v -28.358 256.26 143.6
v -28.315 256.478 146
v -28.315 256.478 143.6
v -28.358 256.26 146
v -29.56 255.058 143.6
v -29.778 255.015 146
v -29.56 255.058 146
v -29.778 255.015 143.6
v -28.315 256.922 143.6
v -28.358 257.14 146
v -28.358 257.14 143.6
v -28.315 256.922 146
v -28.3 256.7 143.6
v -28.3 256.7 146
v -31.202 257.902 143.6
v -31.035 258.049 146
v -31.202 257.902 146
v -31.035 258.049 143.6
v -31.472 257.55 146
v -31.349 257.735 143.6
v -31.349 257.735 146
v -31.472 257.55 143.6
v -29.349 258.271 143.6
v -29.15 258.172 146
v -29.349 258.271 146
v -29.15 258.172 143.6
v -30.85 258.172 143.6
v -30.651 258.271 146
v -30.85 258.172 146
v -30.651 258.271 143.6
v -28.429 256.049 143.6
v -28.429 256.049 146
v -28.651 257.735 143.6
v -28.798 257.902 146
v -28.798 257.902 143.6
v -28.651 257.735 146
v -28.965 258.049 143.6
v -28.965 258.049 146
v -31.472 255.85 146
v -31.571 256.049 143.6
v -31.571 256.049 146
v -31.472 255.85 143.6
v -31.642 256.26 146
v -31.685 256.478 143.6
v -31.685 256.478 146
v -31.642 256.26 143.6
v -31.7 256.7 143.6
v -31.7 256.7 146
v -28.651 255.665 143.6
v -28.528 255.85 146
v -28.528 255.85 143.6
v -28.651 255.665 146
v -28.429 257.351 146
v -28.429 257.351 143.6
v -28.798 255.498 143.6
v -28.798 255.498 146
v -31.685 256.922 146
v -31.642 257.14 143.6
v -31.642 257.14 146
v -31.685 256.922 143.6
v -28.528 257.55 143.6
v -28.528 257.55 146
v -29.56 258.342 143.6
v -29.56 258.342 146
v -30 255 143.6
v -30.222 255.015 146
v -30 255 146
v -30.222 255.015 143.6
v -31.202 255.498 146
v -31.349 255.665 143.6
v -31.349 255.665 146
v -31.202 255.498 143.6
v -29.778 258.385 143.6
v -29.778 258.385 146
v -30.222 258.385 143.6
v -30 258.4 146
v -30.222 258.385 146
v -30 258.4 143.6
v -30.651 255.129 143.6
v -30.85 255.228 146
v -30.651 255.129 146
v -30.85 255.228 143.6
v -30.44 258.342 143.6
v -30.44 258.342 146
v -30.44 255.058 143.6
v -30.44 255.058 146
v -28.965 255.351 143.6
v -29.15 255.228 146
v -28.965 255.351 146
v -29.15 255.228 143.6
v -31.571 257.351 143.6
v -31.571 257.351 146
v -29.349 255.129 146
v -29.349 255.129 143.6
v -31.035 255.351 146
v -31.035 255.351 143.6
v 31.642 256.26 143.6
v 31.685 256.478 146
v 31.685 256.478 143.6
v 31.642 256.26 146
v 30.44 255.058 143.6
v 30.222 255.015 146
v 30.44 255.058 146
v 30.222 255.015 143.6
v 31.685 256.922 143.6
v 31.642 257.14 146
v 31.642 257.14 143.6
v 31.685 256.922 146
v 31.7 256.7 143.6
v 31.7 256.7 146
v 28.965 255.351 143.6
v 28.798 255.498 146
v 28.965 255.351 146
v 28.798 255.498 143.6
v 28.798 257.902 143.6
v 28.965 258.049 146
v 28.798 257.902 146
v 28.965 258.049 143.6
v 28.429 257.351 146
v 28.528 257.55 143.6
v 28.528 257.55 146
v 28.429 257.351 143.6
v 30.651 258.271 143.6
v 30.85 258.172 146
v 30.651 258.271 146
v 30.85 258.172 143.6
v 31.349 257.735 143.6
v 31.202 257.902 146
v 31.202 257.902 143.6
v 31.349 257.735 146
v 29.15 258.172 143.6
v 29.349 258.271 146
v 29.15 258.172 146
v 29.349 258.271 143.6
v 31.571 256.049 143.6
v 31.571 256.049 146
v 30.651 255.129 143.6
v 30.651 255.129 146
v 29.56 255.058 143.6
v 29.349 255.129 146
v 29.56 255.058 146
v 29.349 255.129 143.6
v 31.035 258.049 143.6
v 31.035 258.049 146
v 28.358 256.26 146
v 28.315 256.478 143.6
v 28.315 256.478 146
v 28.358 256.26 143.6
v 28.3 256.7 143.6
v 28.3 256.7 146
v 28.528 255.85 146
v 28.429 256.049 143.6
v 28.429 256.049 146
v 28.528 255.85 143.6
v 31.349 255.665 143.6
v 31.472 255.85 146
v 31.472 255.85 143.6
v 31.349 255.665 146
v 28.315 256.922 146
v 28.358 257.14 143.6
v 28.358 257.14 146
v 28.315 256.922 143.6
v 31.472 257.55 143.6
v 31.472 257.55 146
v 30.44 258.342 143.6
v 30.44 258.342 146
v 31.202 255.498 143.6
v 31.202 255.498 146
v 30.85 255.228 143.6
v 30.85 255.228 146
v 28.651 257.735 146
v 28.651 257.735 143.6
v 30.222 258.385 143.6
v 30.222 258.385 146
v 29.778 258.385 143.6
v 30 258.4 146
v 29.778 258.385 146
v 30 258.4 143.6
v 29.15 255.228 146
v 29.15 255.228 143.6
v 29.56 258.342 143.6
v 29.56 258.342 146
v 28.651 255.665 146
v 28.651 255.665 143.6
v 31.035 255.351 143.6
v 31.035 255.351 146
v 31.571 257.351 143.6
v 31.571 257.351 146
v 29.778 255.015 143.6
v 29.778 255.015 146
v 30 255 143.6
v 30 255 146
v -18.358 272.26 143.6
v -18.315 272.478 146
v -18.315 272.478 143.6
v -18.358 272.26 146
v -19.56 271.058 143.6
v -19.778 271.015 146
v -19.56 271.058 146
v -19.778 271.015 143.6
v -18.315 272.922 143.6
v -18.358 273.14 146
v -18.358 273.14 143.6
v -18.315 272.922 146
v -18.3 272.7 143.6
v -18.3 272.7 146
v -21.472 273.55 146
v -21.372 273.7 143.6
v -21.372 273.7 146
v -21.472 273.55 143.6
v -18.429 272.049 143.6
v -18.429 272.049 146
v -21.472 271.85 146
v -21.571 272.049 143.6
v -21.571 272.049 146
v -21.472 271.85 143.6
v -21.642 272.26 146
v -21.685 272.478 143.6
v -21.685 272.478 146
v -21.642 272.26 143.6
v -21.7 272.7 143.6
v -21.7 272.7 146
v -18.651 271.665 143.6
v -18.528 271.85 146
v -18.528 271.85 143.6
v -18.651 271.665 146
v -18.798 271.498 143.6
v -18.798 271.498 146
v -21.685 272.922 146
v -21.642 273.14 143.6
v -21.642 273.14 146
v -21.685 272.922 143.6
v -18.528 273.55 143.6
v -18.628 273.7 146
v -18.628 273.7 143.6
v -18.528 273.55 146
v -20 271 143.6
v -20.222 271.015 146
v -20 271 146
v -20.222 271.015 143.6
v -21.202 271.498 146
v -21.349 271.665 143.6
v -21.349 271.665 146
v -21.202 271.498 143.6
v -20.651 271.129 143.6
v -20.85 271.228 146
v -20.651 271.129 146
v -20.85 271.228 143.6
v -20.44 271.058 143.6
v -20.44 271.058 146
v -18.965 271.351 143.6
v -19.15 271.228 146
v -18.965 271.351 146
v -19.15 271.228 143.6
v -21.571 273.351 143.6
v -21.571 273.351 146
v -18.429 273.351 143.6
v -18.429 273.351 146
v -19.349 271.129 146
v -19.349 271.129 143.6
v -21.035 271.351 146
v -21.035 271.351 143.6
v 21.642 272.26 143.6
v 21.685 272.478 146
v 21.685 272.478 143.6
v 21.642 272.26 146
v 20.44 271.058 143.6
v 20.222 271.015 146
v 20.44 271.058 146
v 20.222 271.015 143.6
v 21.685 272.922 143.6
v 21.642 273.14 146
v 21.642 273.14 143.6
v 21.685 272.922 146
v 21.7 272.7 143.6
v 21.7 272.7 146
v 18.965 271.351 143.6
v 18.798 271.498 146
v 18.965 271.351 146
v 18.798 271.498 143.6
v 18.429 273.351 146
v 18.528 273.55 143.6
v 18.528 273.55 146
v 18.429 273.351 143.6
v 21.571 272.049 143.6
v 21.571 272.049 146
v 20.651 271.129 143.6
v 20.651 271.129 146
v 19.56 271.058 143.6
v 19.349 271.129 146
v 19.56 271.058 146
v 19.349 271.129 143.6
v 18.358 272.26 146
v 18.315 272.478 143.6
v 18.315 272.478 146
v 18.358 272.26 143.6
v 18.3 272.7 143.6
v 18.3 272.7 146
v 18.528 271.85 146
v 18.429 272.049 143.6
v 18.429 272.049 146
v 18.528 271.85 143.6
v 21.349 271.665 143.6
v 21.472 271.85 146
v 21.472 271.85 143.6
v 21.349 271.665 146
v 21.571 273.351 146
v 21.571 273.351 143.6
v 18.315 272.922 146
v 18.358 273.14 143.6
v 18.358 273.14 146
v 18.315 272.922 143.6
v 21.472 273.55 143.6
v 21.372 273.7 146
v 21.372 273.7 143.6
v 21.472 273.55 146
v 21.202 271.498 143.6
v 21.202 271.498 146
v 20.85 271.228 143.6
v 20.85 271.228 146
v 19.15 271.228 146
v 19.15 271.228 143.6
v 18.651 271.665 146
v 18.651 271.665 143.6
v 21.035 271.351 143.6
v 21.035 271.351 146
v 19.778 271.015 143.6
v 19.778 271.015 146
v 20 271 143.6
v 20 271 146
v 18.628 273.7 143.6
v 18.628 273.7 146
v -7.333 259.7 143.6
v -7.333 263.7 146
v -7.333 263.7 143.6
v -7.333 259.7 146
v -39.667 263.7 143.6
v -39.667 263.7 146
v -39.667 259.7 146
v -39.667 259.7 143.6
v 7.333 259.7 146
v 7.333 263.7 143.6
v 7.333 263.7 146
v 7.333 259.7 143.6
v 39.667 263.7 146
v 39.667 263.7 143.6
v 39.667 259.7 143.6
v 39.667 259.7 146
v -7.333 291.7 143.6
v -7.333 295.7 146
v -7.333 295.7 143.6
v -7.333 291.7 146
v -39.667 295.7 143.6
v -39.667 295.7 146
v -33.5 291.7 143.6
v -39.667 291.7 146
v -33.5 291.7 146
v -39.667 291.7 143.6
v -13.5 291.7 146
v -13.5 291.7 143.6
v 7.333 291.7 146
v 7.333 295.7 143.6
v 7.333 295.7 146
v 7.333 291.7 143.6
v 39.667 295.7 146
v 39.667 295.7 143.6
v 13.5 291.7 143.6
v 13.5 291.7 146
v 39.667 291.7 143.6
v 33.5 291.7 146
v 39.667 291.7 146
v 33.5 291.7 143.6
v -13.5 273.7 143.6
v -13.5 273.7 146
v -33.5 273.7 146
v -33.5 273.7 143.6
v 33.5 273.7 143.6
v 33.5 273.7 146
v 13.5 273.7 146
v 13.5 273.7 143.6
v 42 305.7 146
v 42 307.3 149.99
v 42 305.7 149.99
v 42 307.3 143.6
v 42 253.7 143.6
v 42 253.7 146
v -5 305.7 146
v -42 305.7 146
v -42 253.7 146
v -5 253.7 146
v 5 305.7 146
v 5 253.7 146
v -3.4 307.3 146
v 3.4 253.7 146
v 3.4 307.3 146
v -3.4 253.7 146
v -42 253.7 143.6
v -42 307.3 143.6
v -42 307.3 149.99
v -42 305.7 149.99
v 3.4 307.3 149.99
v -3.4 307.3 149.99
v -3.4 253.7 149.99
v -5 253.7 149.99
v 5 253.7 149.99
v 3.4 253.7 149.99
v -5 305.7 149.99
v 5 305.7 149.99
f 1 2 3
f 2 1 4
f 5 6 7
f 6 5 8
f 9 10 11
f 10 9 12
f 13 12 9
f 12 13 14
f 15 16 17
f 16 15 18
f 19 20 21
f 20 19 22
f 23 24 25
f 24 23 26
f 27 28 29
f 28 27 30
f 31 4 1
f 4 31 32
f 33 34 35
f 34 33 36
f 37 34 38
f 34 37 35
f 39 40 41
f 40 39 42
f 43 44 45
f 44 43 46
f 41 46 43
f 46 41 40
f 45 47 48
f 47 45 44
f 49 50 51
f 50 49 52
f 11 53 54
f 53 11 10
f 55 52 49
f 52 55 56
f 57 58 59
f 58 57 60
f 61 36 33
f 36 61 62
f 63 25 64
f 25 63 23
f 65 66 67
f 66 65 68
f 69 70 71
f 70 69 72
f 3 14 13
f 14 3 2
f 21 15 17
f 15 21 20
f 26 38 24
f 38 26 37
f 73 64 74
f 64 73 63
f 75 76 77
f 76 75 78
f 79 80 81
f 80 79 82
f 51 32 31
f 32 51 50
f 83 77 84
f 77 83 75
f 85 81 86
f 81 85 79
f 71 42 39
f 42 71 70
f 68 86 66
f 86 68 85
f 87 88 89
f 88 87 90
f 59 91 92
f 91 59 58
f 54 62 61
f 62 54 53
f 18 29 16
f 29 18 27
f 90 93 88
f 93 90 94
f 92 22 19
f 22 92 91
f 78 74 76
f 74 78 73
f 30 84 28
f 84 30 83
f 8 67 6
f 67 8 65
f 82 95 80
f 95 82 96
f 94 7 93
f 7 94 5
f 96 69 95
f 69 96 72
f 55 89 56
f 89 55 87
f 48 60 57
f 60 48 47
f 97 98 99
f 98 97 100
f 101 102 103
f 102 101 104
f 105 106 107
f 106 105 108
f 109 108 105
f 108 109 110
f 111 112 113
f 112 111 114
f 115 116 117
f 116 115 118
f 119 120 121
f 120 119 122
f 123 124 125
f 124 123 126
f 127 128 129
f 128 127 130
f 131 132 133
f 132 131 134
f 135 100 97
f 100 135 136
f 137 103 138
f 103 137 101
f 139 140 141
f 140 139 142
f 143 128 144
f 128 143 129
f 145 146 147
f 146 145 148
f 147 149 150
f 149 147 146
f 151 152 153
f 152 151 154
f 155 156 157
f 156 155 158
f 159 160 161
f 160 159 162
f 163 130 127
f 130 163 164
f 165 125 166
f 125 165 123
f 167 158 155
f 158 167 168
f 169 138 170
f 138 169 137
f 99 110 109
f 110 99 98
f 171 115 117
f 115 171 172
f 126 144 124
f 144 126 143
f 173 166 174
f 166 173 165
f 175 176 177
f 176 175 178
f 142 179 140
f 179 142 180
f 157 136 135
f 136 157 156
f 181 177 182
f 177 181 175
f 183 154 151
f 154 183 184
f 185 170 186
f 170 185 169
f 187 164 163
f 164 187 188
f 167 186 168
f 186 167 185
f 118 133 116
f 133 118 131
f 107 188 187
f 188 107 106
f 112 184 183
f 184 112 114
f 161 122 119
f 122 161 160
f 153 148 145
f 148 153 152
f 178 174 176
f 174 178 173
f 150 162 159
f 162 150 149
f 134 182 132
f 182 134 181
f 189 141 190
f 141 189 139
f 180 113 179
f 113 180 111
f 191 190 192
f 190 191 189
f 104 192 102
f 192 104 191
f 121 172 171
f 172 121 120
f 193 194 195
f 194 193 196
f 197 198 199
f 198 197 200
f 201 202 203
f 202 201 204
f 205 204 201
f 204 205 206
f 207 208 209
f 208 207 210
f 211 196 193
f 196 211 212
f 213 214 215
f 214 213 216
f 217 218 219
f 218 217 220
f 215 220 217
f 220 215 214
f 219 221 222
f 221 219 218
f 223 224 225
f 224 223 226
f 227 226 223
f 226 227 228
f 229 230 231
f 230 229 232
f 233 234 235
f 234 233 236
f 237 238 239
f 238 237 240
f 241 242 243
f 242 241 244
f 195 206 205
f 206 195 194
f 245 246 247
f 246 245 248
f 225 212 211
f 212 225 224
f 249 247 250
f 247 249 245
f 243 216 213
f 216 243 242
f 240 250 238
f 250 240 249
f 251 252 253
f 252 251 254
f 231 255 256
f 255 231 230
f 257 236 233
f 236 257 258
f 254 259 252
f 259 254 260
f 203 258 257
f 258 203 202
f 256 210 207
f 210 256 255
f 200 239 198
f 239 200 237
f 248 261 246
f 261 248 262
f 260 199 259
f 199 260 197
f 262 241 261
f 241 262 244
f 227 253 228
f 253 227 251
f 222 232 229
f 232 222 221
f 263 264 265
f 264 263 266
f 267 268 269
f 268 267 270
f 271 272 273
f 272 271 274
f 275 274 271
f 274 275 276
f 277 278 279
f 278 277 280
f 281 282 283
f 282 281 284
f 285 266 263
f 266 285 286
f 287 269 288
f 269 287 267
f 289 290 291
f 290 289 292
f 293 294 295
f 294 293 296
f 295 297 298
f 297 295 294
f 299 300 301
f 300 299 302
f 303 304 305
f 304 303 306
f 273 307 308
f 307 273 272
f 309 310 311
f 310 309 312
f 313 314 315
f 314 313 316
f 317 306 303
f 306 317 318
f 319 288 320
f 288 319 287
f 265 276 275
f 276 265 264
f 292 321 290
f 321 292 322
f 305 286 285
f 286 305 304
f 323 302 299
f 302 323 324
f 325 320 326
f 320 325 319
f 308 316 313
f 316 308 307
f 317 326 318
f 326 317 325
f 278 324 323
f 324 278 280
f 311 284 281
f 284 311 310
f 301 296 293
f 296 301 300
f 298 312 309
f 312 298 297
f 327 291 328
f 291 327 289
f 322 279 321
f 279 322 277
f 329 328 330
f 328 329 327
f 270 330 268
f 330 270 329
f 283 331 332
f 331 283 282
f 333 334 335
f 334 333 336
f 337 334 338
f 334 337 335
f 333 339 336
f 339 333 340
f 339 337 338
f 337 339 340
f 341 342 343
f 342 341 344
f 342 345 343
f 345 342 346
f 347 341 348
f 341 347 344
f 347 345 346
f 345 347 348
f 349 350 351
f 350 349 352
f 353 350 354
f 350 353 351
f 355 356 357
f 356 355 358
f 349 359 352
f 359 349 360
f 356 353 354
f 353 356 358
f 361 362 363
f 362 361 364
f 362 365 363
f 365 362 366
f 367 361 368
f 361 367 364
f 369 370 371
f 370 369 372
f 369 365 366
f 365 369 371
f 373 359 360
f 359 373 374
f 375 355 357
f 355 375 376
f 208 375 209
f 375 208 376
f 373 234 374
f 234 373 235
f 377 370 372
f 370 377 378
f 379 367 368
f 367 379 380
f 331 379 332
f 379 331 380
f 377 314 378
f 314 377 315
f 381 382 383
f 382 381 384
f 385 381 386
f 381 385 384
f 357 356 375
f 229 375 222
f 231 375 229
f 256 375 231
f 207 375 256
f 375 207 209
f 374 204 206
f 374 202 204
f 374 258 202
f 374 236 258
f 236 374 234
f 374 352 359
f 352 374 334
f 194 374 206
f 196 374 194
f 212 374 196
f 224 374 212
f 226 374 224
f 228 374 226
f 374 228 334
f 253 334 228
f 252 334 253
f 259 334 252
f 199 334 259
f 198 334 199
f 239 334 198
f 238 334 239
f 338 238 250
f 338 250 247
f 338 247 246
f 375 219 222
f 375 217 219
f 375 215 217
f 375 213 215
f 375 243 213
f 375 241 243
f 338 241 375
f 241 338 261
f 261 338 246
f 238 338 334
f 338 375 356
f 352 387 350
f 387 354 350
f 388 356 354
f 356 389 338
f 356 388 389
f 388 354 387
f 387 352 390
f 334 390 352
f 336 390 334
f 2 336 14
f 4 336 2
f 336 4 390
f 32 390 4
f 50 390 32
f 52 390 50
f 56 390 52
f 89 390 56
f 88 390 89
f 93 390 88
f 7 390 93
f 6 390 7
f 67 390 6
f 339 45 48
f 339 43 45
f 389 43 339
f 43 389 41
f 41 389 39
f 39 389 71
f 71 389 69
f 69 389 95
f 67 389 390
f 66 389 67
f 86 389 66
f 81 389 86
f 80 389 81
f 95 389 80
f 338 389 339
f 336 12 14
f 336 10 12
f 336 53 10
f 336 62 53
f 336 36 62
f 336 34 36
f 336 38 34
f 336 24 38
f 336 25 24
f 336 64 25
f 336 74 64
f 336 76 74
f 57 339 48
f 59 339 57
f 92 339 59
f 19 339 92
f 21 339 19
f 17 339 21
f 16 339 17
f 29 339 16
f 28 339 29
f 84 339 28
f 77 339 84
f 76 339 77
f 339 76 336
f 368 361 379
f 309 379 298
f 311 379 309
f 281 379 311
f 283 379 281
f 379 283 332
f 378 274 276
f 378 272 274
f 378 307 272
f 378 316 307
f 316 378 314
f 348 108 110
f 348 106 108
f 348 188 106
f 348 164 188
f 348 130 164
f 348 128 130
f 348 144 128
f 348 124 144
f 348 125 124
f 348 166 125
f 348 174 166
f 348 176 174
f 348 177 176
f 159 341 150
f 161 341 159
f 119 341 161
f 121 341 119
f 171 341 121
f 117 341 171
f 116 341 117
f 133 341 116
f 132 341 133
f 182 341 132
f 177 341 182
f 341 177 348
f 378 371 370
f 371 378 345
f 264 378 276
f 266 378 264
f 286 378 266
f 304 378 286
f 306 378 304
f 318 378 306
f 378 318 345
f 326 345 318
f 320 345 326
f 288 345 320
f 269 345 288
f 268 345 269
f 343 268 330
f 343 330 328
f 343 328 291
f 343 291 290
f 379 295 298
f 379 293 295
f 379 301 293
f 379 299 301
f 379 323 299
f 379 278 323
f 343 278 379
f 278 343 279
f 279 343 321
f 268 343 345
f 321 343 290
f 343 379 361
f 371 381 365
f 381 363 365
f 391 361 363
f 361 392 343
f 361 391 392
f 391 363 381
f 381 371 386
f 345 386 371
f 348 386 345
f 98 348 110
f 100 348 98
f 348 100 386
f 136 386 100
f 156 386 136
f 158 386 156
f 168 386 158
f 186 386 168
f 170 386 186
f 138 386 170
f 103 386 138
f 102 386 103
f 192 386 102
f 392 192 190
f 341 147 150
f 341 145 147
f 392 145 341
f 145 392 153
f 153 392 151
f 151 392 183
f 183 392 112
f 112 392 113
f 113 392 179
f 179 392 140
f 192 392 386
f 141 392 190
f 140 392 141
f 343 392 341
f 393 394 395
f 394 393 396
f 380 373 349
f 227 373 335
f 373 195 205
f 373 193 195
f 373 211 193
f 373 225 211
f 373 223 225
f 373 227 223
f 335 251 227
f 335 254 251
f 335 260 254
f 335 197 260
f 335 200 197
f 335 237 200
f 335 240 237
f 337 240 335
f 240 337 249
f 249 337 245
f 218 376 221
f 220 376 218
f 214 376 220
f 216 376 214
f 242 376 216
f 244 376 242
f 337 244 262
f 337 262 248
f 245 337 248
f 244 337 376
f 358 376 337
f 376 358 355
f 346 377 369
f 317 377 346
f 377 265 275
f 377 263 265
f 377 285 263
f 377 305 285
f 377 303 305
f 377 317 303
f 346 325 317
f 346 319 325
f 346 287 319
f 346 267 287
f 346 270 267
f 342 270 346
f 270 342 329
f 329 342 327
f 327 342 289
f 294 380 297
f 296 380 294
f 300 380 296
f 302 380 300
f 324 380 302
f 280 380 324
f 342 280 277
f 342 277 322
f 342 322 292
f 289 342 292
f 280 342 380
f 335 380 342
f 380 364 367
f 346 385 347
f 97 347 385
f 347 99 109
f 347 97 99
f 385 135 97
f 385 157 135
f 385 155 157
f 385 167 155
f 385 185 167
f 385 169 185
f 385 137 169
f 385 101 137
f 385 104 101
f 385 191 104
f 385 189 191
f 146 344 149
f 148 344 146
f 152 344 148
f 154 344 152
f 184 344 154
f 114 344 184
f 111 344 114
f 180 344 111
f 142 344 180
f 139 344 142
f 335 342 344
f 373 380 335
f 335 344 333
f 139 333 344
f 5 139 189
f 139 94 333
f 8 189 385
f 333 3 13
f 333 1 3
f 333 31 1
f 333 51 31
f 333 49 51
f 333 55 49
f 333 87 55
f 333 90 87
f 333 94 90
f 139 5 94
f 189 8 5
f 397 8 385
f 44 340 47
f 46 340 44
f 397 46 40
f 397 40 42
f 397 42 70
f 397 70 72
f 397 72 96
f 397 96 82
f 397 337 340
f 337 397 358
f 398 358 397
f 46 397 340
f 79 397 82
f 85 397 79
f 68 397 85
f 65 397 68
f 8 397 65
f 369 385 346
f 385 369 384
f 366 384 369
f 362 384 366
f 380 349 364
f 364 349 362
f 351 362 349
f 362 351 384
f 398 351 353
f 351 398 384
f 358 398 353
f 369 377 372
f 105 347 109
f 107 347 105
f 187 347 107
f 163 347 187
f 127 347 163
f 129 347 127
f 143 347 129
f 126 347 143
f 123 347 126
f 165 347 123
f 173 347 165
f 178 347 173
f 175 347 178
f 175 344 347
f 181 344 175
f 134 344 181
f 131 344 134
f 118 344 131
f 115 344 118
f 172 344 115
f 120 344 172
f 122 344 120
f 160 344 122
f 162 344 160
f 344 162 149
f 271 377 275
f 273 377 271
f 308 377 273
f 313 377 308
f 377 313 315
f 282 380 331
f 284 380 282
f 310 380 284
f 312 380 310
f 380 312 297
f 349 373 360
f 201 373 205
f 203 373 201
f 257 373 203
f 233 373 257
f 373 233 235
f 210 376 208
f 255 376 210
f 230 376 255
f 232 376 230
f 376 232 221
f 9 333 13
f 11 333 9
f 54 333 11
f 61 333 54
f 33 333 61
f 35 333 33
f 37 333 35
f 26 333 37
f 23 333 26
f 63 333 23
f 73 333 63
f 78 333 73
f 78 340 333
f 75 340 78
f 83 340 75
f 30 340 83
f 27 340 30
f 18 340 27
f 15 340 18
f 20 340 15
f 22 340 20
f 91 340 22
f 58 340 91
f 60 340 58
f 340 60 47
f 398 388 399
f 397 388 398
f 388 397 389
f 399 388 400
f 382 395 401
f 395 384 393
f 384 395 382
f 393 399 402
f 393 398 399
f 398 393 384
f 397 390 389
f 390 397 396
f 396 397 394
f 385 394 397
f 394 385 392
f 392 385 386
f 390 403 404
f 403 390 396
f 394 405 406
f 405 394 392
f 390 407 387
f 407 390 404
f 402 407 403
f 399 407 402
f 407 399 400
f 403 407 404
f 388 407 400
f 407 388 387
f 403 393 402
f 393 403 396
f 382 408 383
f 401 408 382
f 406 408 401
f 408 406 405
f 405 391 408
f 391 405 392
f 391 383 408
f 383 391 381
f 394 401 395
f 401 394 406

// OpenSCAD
// file: cargo_layout_t5_params.scad
// cargo_layout_t5_params.scad -- GENERATED by tools/cargo_layout_fit.py
// --write-scad.  Do not edit: change the Python constants and regenerate.
// AIRCRAFT DATUM R2, mm (origin centreline / nose tip / ground plane;
// X=+port, Y=+aft, Z=+up).  2026-10-19.
// License: CERN-OHL-W-2.0 —
// see LICENSES/CERN-OHL-W 2.0 (SPDX-License-Identifier: CERN-OHL-W-2.0)
SHAFT_Y = 352.3000;
SHAFT_Z = 149.0900;
GEAR_MODULE = 1.0000;
WHEEL_N = 40.0000;
WORM_STARTS = 6.0000;
WHEEL_PD = 40.0000;
WORM_PD = 26.0000;
STAGE_C = 33.0000;
WORM_Z = 182.0900;
GEAR_X_OUT = 47.1000;
WHEEL_FACE = 5.0000;
WORM_X = 44.6000;
WORM_LEN = 10.0000;
MOTOR_D = 20.0000;
MOTOR_BODY_L = 41.0000;
MOTOR_ENC_L = 6.0000;
MOTOR_SHAFT_L = 18.0000;
MOTOR_FACE_Y = 344.8000;
MOTOR_HOLE_S = 15.0000;
BATT_L = 142.0000;
BATT_W = 50.0000;
BATT_H = 38.0000;
BATT_X0 = -25.0000;
BATT_X1 = 25.0000;
BATT_Y0 = 247.7000;
BATT_Y1 = 389.7000;
BATT_Z0 = 170.0000;
BATT_Z1 = 208.0000;
CRADLE_T = 2.4000;
CRADLE_FWD_BOSS_Y = 255.7000;
CRADLE_AFT_BOSS_Y = 385.7000;
CRADLE_BOSS_DX = 18.0000;
CRADLE_XC = 0.0000;
CRADLE_TOP_Z = 210.4000;
CRADLE_RELIEF_Z = 207.0000;
TRAY_X = 40.0000;
TRAY_Y = 60.0000;
TRAY_D = 55.0000;
INARA_XC = 37.8500;
INARA_YC = 391.7000;
INARA_BOSS_DX = 15.0000;
INARA_BOSS_DY = 25.0000;
NODE_L = 58.0000;
NODE_H = 37.0000;
NODE_T = 22.0000;
NODE_CABLE = 10.0000;
N_CHIN_X_IN = 5.0000;
N_CHIN_Y0 = 247.7000;
N_CHIN_Z0 = 146.0000;
N_AFT_Y0 = 405.2000;
N_AFT_Z0 = 167.0000;
HOIST_Y = 361.2000;
HOIST_DX = 30.9000;
LINE_R = 0.5000;
WORM_HUB_L = 2.5000;
WORM_OFFSET = 0.0000;
WORM_YC = 352.3000;
BRAKE_COLLAR_D = 14.0000;
BRAKE_COLLAR_L = 4.0000;
BRAKE_Y = 359.8000;
BRAKE_SOL_D = 12.0000;
BRAKE_SOL_L = 24.0000;
BRAKE_SOL_Y0 = 367.8000;
SENSOR_PCB_T = 3.0000;
STAGE_RATIO = 6.6667;
DRUM_D = 16.0000;
DRUM_L = 12.0000;
SPOOL_Z0 = 213.4000;
BATT_XC = 0.0000;
RAMP_X0 = -24.1500;
RAMP_X1 = 27.8500;
RAMP_Z0 = 88.0000;
RAMP_Z1 = 124.0000;
RAMP_OVERLAP = 6.0000;
X_CL = 0.0000;
GAP_MM = 3.0000;
BRAKE_SOL_X = 43.1000;
BOARD_L = 42.9000;
BOARD_W = 36.5000;
BOARD_T = 7.4000;
BOARD_X0 = 52.1000;
BOARD_Y0 = 360.7000;
BOARD_Z0 = 163.0000;
N_CHIN_Y1 = 305.7000;
N_CHIN_Z1 = 168.0000;
SHELF_T = 2.4000;
SHELF_Z0 = 143.6000;
SHELF_Y0 = 253.7000;
SHELF_Y1 = 307.3000;
SHELF_SILL_Y1 = 260.7000;
OBSERVER_L = 76.8000;
OBSERVER_W = 70.8000;
OBSERVER_T = 20.0000;
OBSERVER_Y0 = 414.2000;
OBSERVER_Z0 = 94.2000;
GW_PCB_L = 49.0000;
GW_PCB_W = 25.5000;
GW_PCB_T = 1.6000;
GW_FRONT_H = 9.0000;
GW_BACK_H = 3.0000;
GW_RAIL_T = 1.6000;
GW_RAIL_CLR = 0.3000;
GW_RAIL_LIP = 1.2000;
GW_BASE_T = 5.4000;
GW_CBORE_D = 6.0000;
GW_CBORE_H = 3.2000;
GW_BOSS_H = 4.0000;
GW_SLAB_Z = 86.2000;
GW_XC = 0.0000;
GW_X0 = -24.5000;
GW_X1 = 24.5000;
GW_TRAY_X0 = -26.1000;
GW_TRAY_X1 = 26.1000;
GW_BASE_Y0 = 288.4500;
GW_TRAY_Y0 = 289.7000;
GW_PCB_Y0 = 291.2000;
GW_PCB_Y1 = 292.8000;
GW_TRAY_Y1 = 294.3000;
GW_ENV_Y0 = 288.2000;
GW_ENV_Y1 = 301.8000;
GW_Z0 = 90.2000;
GW_PCB_Z0 = 95.6000;
GW_PCB_Z1 = 121.1000;
GW_TRAY_Z1 = 124.1000;
GW_BASE_Y1 = 303.7000;
GW_BOSS_DX = 19.0000;
GW_BOSS_H2 = 3.5000;
N_AFT_XC = [30.00, -31.00];
CRADLE_RELIEF_Y = [285.70, 307.70];
BRACKET_FEET = [[316.30, 204.09], [345.70, 204.09], [369.70, 157.00]];
SHELF_BOSS = [[-30.00, 256.70], [30.00, 256.70], [-20.00, 272.70], [20.00, 272.70]];
OBSERVER_BOSS = [[-30.00, 4.00, 4.00], [30.00, 4.00, 4.00], [-30.00, 8.50, 3.50], [30.00, 8.50, 3.50]];
GW_BOSS = [[-19.00, 292.70], [19.00, 292.70], [-19.00, 299.70], [19.00, 299.70]];
// main file
// ===========================================================================
// HULL-FRAME COORDINATE STANDARD - Rev R1 (2026-06-11).  See AGENTS.md.
//   Hull frame (canonical for ALL design artifacts): X = +port (left),
//   Y = +aft (back), Z = +dorsal (up); origin = SerenityAssembly.FCStd
//   world origin.  MODELLED DIRECTLY IN HULL FRAME; the exported STL imports
//   into serenity_assembly.py at identity placement.
// ===========================================================================
// ============================================================
// chin_node_shelf.scad -- Rev U (2026-11-07; carried forward from Rev T5e, 2026-09-16)
// Shelf for the two remaining cargo-section avionics nodes (N1 CN2 Inara,
// N3 CN3 River: PB2I + cape in a Faraday pouch, 58 x 37 x 22 each) lying
// FLAT on the chin floor under the battery nose, Y -58..0, Z 66..88, side by
// side with a shared 10 mm cable channel on the centreline (connector edges
// inboard).  Every station is from cargo_layout_t5_params.scad (GENERATED
// by tools/cargo_layout_fit.py --write-scad; PASS 2026-09-16).
//
// WHY HERE.  The chin FLANKS beside the battery nose were measured 0.2-0.5
// mm short on 2026-09-15 and again on 2026-09-16 (the hull is 2.7 mm
// asymmetric there); the shoulder pockets outboard of the tilt brackets take
// no 35 mm board.  The chin FLOOR under the battery nose (forward of the
// hoisted payload box, Y < 4.7) is 113 mm wide at Z 66..88 and was clear
// first try, both sides, at the 2 mm static budget.
//
// WHAT IT IS.  A 2.4 mm CF-PETG plate, 84 x 53.6 mm (Y -52..+1.6), with a 4 mm lip around
// each pouch pocket and a centre rib that forms the cable channel.  Its
// forward 7 mm (Y -52..-45) is a SILL that lies on the chin floor (Z 60-62,
// rising forward) and takes the two forward M3 screws into floor bosses; the
// aft pair of bosses rise ~20 mm from the ramp fairing's inner face to the
// same plate underside (merge_cargo_interior.py t5_chin_shelf_bosses).  The
// pouches are held by two 16 mm silicone cam straps each, through slots in
// the plate (BATT-STRAP-CAM, same part as the battery).
//
// LOADS.  2 x ~90 g (node + pouch, VERIFY at first article) = 1.77 N at 1 g,
//   4.4 N at the 2.5 g hard-landing case: plate as a 58 mm simply supported
//   beam 84 wide -> M = 4.4 x 0.058 / 8 = 0.032 N.m; Z = 84 x 2.4^2 / 6 =
//   81 mm^3 -> 0.4 MPa.  Nothing.  The legs (2 x 6 x 6 mm, 20 mm) see 2.2 N
//   each.  First plate mode (simply supported, 0.18 kg on 84 x 58 x 2.4 mm
//   CF-PETG, E ~ 4 GPa): k ~ 48 E I / L^3 = 48 x 4000 x 97 / 195112 ~ 95
//   N/mm -> f_n ~ 115 Hz, well above the airframe modes and below the 470 Hz
//   EDF shaft rate (transmissibility ~ 0.06).
//
// PRINT ORIENTATION: plate flat, pockets up.  3 perimeters, 30 % gyroid,
//   CF-PETG.
//
// Author: Steve Griffing, PE(CSE), CISSP-ISSEP, CPP
// AI note: Written by Claude (model: Claude Opus 5, Anthropic) under the
//   author's direction, 2026-09-16, per AGENTS.md SS3 AI attribution.
// License: CERN-OHL-W-2.0 — see LICENSES/CERN-OHL-W 2.0 (SPDX-License-Identifier: CERN-OHL-W-2.0)
// ============================================================

include <cargo_layout_t5_params.scad>

$fn = 48;
EPS = 0.01;

LIP_H      = 4.0;                  // pocket lip above the plate
LIP_T      = 1.6;
M3_CLR     = 3.4;
STRAP_SLOT = [4.0, 20.0];          // Y x X through-slots for the 16 mm cam straps
STRAP_Y    = [SHELF_Y0 + 8.0, N_CHIN_Y1 - 12.0];

X1 = N_CHIN_X_IN + NODE_H;         // port outboard face (-127.85)
X0 = 2 * X_CL - X1;                // stbd (-211.85)
Y0 = SHELF_Y0;   Y1 = SHELF_Y1;   // -52..+1.6: clear of the head/cargo collar ring (Y < -53.5) and the payload (Y > 4.7)
Z0 = SHELF_Z0;                     // plate underside (63.6)

module plate() {
    difference() {
        translate([X0, Y0, Z0]) cube([X1 - X0, Y1 - Y0, SHELF_T]);
        // 4 x M3 to the floor bosses
        for (b = SHELF_BOSS) translate([b[0], b[1], Z0 - 1]) cylinder(d = M3_CLR, h = SHELF_T + 2);
        // strap slots: 2 straps per node, at the pouch's outboard and inboard thirds
        for (y = STRAP_Y, sx = [-1, 1], k = [1, 2])
            translate([X_CL + sx * (NODE_CABLE / 2 + k * NODE_H / 3) - STRAP_SLOT[1] / 2, y - STRAP_SLOT[0] / 2, Z0 - 1])
                cube([STRAP_SLOT[1], STRAP_SLOT[0], SHELF_T + 2]);
        // lightening windows under each pouch centre
        for (sx = [-1, 1])
            translate([X_CL + sx * (NODE_CABLE / 2 + NODE_H / 2) - 10, Y0 + 20, Z0 - 1]) cube([20, 18, SHELF_T + 2]);
    }
}

module lips() {
    // an aft lip behind each pocket (Y 0..1.6) and an inboard lip standing
    // in the cable channel (1.6 mm x 4 mm at the channel floor -- the
    // connectors sit mid-height on the 22 mm stack, above it).  No outboard
    // or forward lip: the plate ends at the pouch's outboard face, the pouch
    // overhangs the plate's forward edge by 6 mm over the collar ring, and
    // the two cam straps take the lateral and forward load.
    for (sx = [-1, 1]) {
        xi = X_CL + sx * NODE_CABLE / 2;                 // pocket inboard face
        xo = X_CL + sx * (NODE_CABLE / 2 + NODE_H);      // pocket outboard face
        xa = min(xi, xo); xb = max(xi, xo);
        translate([xa, N_CHIN_Y1, Z0 + SHELF_T - EPS]) cube([xb - xa, LIP_T, LIP_H]);   // aft lip, behind the pouch
        translate([sx > 0 ? xi - LIP_T : xi, Y0, Z0 + SHELF_T - EPS]) cube([LIP_T, Y1 - Y0, LIP_H]);
    }
}

union() { plate(); lips(); }
